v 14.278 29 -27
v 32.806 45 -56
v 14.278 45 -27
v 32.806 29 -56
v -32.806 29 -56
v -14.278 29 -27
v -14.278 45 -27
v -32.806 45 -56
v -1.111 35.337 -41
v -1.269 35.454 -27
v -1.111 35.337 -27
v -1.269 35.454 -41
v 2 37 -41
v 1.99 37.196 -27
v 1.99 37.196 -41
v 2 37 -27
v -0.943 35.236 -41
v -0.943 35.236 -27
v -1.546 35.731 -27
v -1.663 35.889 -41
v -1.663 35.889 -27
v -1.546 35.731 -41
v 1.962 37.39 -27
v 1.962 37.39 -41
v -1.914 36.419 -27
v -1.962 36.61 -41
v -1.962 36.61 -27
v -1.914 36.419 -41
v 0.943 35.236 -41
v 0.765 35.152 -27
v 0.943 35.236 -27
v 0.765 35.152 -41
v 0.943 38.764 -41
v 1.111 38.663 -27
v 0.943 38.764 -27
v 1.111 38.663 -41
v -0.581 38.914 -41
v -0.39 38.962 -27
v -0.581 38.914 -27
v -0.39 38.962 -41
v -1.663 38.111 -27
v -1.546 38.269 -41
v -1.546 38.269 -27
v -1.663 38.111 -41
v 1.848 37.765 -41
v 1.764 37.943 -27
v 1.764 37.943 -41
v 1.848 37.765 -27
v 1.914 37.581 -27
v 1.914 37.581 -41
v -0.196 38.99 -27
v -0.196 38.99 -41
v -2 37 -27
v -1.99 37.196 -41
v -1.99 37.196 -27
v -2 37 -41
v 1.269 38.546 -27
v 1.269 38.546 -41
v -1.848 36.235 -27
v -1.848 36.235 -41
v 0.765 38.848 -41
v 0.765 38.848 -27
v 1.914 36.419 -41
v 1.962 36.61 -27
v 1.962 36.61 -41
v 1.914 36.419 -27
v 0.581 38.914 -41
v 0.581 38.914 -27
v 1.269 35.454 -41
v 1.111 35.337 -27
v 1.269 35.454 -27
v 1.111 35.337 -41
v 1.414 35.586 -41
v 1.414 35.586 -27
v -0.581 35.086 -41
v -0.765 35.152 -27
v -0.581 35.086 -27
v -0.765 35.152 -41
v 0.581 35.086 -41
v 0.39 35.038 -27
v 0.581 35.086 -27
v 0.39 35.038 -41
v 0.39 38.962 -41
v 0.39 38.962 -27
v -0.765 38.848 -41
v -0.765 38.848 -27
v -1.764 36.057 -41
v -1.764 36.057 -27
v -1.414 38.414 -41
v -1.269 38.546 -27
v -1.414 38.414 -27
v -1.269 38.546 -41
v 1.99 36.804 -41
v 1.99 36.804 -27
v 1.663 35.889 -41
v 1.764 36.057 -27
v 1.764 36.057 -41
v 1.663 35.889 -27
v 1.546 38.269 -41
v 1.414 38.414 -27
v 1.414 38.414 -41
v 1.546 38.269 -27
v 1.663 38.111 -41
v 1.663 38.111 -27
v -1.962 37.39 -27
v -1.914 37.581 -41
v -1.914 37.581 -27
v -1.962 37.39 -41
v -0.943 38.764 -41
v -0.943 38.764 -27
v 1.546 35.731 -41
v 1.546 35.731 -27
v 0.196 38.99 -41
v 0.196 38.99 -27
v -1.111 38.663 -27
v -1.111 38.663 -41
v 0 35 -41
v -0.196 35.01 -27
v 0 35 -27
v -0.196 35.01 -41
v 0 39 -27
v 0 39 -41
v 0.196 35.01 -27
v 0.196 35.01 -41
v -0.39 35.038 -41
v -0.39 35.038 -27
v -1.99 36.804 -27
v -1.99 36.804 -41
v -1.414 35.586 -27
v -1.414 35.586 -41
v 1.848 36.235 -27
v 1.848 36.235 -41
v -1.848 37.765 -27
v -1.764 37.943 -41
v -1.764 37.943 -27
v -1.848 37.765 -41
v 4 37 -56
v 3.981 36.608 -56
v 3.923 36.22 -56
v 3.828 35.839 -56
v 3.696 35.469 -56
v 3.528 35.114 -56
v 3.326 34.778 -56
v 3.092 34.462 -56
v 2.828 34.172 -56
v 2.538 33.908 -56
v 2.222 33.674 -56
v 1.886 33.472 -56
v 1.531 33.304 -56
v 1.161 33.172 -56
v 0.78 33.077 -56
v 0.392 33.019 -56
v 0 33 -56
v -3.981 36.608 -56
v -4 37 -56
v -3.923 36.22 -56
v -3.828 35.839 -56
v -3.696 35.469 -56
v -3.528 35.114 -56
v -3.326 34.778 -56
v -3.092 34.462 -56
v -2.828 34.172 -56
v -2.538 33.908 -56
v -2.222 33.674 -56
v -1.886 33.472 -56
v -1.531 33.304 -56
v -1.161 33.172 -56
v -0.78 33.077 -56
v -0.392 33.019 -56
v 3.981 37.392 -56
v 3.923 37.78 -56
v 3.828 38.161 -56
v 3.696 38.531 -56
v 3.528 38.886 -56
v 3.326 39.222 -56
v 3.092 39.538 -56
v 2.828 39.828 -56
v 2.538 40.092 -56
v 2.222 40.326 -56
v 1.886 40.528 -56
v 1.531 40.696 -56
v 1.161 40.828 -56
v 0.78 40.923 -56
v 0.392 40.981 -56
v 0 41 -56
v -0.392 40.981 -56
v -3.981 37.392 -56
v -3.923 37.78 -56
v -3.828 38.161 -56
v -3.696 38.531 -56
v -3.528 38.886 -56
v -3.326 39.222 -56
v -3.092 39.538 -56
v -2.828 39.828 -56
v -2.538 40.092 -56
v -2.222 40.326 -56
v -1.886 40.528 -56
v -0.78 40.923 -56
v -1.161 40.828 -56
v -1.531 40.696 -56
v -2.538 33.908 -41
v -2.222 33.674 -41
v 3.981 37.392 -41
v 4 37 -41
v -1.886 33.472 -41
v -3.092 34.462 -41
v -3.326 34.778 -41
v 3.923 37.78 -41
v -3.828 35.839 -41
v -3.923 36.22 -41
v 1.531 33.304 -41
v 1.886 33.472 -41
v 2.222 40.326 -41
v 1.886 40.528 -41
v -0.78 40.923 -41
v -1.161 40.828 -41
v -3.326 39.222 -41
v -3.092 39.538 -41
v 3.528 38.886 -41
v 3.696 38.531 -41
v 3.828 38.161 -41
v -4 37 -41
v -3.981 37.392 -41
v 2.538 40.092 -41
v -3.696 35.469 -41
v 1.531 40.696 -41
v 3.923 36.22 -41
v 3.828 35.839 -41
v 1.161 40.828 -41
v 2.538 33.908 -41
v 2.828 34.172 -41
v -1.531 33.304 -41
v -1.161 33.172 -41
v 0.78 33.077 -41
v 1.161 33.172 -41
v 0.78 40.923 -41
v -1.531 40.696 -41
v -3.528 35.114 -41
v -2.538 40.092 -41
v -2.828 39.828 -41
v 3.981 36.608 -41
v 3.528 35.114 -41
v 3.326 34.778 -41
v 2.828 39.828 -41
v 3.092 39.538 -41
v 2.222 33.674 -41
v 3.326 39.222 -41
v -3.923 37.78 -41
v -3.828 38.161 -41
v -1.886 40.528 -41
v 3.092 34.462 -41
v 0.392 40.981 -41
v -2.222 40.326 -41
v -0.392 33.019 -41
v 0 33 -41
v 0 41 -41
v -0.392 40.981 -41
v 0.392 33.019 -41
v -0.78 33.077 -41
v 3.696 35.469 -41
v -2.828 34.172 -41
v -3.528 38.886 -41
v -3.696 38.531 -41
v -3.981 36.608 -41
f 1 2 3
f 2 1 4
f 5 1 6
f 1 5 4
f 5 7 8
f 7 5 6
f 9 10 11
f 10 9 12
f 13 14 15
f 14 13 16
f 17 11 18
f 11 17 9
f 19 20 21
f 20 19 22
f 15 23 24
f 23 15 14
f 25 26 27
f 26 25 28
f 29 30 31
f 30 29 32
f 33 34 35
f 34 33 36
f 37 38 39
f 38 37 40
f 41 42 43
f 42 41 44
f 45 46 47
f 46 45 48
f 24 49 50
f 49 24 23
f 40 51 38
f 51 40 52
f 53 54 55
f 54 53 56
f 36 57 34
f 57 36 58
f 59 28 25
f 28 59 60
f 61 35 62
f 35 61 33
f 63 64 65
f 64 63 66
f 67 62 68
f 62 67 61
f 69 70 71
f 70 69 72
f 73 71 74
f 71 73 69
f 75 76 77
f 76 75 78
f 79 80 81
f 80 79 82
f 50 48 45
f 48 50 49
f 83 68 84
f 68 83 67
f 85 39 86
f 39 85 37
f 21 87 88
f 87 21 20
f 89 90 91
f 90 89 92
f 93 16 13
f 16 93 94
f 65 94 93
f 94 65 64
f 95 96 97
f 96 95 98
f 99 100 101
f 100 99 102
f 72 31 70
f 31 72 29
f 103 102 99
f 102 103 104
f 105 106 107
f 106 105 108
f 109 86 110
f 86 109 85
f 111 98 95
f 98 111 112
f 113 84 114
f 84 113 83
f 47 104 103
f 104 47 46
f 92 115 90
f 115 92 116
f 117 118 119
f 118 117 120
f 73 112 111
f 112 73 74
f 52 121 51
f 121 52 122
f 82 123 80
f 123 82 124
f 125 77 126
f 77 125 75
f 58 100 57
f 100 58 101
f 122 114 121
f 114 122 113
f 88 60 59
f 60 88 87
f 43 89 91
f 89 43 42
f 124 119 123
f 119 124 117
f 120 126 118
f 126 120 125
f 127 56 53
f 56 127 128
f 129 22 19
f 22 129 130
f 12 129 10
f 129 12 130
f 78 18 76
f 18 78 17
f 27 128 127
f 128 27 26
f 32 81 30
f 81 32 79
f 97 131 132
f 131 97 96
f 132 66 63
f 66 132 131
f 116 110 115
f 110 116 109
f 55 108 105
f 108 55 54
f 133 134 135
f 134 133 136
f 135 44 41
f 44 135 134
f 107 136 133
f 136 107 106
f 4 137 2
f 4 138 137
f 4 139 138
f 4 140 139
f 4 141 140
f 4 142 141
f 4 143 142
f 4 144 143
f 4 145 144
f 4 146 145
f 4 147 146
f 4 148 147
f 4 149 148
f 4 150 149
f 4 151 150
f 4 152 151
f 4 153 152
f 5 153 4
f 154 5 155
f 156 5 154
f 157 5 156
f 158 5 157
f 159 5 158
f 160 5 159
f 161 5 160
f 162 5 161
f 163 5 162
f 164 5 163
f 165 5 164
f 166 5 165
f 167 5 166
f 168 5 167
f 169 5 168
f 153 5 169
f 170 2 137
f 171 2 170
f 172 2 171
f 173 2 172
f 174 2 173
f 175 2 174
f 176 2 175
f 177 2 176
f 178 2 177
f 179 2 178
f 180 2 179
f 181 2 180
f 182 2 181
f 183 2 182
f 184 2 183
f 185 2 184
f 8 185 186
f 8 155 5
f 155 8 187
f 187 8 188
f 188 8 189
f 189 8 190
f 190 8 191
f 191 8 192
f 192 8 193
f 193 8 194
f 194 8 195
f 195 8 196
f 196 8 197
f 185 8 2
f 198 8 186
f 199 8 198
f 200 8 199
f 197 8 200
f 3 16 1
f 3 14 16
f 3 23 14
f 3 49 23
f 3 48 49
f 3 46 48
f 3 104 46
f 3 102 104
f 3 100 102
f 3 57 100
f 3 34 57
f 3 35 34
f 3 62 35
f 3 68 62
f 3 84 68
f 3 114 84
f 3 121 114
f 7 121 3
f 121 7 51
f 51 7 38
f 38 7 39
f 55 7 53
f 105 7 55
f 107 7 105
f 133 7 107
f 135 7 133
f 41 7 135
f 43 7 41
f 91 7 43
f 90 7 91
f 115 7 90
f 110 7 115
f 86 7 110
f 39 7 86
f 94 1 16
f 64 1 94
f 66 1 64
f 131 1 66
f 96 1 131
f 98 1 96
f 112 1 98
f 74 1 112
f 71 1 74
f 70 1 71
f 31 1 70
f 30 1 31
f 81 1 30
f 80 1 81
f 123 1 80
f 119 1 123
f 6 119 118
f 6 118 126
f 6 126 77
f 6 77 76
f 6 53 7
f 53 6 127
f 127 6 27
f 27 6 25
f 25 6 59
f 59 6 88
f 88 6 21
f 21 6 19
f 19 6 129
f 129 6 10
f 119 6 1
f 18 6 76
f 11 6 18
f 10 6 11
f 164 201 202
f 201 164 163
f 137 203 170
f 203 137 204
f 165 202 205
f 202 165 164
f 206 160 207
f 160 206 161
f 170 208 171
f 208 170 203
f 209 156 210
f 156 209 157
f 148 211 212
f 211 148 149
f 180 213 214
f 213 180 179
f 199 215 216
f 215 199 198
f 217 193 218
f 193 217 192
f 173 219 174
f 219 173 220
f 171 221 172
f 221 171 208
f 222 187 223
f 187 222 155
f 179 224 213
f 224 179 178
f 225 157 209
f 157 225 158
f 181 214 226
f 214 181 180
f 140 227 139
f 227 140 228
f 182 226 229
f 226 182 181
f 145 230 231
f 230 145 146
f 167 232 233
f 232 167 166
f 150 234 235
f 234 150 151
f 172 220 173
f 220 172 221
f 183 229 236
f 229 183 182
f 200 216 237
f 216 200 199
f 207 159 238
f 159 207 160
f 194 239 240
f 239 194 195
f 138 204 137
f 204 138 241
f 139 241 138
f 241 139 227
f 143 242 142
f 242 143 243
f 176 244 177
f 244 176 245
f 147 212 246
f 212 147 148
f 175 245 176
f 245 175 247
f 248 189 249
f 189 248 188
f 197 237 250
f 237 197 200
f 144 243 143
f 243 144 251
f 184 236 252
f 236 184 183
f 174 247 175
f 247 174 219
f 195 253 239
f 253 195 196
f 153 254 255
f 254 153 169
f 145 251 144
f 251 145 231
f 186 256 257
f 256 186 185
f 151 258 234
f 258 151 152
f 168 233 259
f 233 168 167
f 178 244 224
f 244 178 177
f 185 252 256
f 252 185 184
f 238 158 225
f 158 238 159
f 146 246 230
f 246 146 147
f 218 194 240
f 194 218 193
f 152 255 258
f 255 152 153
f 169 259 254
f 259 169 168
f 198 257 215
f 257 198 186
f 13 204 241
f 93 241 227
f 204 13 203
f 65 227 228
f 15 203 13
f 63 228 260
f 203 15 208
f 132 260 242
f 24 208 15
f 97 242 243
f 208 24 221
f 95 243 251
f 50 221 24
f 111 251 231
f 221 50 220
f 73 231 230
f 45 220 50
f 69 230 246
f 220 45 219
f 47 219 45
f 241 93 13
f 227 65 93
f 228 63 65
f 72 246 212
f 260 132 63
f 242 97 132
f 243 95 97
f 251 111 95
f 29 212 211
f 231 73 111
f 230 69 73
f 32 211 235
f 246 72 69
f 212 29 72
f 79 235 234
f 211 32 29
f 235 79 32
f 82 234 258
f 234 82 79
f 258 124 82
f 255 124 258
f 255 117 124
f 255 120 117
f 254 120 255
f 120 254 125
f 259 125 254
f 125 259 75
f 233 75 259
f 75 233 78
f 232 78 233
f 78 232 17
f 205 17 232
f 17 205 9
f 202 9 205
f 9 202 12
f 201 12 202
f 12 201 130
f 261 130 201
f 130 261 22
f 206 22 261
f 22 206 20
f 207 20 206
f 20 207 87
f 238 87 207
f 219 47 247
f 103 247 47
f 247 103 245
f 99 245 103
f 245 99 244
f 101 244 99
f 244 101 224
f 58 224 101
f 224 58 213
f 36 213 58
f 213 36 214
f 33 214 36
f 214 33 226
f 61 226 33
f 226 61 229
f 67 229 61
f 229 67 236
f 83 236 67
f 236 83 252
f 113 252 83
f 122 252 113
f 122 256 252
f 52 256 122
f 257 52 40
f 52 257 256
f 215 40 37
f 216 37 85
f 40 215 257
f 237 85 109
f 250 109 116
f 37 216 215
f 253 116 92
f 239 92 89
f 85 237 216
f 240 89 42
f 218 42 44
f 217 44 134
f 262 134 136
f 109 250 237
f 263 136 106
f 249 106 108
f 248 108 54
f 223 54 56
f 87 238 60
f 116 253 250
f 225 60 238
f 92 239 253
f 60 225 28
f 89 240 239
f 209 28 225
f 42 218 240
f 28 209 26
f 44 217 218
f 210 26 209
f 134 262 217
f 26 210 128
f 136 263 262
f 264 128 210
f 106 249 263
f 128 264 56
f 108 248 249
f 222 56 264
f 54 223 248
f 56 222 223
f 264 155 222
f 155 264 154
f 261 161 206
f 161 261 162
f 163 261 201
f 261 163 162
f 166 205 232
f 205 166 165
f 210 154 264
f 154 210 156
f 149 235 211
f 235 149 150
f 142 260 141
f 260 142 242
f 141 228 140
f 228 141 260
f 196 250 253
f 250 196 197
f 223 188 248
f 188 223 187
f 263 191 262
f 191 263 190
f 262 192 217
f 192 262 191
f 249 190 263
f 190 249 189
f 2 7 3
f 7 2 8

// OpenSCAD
$fn=64;

$mode = 1; //1 - main model, 2 - cutout holder

if($mode == 2) {
    main();
    //cutout();
} else {
    cutout();
}

module main() {
    difference() {
        import("2M2HA.stl");
    
        cutout_base(); //[-35,-31], [2,28], [28,28], [64,-31]
    
        color("green") 
            translate([0,37,-55])
                cylinder(h=40, d=4);  
    }
}

module cutout_base() {
    difference() {
        color("red")
            translate([-15,48,-53])
                rotate([90,0,0])
                    linear_extrude(height = 19) 
                        polygon(points = [[-21,-8], [2,28], [28,28], [51,-8]]);
    }
}

module cutout() {
    difference() {
        cutout_base();
    
        color("green") 
            translate([0,37,-62])
                cylinder(h=120, d=4);
        
        translate([-55,25,-66])
            cube([100,25,10]);
        
        translate([-55,25,-27])
            cube([100,25,10]);
        
        color("green") 
            translate([0,37,-56])
                cylinder(h=15, d=8);
        
        color("green") 
            translate([-15,48,-53])
                rotate([90,0,0])
                    linear_extrude(height = 3) 
                        polygon(points = [[-21,-8], [2,28], [28,28], [51,-8]]);
    }
    
    

}
